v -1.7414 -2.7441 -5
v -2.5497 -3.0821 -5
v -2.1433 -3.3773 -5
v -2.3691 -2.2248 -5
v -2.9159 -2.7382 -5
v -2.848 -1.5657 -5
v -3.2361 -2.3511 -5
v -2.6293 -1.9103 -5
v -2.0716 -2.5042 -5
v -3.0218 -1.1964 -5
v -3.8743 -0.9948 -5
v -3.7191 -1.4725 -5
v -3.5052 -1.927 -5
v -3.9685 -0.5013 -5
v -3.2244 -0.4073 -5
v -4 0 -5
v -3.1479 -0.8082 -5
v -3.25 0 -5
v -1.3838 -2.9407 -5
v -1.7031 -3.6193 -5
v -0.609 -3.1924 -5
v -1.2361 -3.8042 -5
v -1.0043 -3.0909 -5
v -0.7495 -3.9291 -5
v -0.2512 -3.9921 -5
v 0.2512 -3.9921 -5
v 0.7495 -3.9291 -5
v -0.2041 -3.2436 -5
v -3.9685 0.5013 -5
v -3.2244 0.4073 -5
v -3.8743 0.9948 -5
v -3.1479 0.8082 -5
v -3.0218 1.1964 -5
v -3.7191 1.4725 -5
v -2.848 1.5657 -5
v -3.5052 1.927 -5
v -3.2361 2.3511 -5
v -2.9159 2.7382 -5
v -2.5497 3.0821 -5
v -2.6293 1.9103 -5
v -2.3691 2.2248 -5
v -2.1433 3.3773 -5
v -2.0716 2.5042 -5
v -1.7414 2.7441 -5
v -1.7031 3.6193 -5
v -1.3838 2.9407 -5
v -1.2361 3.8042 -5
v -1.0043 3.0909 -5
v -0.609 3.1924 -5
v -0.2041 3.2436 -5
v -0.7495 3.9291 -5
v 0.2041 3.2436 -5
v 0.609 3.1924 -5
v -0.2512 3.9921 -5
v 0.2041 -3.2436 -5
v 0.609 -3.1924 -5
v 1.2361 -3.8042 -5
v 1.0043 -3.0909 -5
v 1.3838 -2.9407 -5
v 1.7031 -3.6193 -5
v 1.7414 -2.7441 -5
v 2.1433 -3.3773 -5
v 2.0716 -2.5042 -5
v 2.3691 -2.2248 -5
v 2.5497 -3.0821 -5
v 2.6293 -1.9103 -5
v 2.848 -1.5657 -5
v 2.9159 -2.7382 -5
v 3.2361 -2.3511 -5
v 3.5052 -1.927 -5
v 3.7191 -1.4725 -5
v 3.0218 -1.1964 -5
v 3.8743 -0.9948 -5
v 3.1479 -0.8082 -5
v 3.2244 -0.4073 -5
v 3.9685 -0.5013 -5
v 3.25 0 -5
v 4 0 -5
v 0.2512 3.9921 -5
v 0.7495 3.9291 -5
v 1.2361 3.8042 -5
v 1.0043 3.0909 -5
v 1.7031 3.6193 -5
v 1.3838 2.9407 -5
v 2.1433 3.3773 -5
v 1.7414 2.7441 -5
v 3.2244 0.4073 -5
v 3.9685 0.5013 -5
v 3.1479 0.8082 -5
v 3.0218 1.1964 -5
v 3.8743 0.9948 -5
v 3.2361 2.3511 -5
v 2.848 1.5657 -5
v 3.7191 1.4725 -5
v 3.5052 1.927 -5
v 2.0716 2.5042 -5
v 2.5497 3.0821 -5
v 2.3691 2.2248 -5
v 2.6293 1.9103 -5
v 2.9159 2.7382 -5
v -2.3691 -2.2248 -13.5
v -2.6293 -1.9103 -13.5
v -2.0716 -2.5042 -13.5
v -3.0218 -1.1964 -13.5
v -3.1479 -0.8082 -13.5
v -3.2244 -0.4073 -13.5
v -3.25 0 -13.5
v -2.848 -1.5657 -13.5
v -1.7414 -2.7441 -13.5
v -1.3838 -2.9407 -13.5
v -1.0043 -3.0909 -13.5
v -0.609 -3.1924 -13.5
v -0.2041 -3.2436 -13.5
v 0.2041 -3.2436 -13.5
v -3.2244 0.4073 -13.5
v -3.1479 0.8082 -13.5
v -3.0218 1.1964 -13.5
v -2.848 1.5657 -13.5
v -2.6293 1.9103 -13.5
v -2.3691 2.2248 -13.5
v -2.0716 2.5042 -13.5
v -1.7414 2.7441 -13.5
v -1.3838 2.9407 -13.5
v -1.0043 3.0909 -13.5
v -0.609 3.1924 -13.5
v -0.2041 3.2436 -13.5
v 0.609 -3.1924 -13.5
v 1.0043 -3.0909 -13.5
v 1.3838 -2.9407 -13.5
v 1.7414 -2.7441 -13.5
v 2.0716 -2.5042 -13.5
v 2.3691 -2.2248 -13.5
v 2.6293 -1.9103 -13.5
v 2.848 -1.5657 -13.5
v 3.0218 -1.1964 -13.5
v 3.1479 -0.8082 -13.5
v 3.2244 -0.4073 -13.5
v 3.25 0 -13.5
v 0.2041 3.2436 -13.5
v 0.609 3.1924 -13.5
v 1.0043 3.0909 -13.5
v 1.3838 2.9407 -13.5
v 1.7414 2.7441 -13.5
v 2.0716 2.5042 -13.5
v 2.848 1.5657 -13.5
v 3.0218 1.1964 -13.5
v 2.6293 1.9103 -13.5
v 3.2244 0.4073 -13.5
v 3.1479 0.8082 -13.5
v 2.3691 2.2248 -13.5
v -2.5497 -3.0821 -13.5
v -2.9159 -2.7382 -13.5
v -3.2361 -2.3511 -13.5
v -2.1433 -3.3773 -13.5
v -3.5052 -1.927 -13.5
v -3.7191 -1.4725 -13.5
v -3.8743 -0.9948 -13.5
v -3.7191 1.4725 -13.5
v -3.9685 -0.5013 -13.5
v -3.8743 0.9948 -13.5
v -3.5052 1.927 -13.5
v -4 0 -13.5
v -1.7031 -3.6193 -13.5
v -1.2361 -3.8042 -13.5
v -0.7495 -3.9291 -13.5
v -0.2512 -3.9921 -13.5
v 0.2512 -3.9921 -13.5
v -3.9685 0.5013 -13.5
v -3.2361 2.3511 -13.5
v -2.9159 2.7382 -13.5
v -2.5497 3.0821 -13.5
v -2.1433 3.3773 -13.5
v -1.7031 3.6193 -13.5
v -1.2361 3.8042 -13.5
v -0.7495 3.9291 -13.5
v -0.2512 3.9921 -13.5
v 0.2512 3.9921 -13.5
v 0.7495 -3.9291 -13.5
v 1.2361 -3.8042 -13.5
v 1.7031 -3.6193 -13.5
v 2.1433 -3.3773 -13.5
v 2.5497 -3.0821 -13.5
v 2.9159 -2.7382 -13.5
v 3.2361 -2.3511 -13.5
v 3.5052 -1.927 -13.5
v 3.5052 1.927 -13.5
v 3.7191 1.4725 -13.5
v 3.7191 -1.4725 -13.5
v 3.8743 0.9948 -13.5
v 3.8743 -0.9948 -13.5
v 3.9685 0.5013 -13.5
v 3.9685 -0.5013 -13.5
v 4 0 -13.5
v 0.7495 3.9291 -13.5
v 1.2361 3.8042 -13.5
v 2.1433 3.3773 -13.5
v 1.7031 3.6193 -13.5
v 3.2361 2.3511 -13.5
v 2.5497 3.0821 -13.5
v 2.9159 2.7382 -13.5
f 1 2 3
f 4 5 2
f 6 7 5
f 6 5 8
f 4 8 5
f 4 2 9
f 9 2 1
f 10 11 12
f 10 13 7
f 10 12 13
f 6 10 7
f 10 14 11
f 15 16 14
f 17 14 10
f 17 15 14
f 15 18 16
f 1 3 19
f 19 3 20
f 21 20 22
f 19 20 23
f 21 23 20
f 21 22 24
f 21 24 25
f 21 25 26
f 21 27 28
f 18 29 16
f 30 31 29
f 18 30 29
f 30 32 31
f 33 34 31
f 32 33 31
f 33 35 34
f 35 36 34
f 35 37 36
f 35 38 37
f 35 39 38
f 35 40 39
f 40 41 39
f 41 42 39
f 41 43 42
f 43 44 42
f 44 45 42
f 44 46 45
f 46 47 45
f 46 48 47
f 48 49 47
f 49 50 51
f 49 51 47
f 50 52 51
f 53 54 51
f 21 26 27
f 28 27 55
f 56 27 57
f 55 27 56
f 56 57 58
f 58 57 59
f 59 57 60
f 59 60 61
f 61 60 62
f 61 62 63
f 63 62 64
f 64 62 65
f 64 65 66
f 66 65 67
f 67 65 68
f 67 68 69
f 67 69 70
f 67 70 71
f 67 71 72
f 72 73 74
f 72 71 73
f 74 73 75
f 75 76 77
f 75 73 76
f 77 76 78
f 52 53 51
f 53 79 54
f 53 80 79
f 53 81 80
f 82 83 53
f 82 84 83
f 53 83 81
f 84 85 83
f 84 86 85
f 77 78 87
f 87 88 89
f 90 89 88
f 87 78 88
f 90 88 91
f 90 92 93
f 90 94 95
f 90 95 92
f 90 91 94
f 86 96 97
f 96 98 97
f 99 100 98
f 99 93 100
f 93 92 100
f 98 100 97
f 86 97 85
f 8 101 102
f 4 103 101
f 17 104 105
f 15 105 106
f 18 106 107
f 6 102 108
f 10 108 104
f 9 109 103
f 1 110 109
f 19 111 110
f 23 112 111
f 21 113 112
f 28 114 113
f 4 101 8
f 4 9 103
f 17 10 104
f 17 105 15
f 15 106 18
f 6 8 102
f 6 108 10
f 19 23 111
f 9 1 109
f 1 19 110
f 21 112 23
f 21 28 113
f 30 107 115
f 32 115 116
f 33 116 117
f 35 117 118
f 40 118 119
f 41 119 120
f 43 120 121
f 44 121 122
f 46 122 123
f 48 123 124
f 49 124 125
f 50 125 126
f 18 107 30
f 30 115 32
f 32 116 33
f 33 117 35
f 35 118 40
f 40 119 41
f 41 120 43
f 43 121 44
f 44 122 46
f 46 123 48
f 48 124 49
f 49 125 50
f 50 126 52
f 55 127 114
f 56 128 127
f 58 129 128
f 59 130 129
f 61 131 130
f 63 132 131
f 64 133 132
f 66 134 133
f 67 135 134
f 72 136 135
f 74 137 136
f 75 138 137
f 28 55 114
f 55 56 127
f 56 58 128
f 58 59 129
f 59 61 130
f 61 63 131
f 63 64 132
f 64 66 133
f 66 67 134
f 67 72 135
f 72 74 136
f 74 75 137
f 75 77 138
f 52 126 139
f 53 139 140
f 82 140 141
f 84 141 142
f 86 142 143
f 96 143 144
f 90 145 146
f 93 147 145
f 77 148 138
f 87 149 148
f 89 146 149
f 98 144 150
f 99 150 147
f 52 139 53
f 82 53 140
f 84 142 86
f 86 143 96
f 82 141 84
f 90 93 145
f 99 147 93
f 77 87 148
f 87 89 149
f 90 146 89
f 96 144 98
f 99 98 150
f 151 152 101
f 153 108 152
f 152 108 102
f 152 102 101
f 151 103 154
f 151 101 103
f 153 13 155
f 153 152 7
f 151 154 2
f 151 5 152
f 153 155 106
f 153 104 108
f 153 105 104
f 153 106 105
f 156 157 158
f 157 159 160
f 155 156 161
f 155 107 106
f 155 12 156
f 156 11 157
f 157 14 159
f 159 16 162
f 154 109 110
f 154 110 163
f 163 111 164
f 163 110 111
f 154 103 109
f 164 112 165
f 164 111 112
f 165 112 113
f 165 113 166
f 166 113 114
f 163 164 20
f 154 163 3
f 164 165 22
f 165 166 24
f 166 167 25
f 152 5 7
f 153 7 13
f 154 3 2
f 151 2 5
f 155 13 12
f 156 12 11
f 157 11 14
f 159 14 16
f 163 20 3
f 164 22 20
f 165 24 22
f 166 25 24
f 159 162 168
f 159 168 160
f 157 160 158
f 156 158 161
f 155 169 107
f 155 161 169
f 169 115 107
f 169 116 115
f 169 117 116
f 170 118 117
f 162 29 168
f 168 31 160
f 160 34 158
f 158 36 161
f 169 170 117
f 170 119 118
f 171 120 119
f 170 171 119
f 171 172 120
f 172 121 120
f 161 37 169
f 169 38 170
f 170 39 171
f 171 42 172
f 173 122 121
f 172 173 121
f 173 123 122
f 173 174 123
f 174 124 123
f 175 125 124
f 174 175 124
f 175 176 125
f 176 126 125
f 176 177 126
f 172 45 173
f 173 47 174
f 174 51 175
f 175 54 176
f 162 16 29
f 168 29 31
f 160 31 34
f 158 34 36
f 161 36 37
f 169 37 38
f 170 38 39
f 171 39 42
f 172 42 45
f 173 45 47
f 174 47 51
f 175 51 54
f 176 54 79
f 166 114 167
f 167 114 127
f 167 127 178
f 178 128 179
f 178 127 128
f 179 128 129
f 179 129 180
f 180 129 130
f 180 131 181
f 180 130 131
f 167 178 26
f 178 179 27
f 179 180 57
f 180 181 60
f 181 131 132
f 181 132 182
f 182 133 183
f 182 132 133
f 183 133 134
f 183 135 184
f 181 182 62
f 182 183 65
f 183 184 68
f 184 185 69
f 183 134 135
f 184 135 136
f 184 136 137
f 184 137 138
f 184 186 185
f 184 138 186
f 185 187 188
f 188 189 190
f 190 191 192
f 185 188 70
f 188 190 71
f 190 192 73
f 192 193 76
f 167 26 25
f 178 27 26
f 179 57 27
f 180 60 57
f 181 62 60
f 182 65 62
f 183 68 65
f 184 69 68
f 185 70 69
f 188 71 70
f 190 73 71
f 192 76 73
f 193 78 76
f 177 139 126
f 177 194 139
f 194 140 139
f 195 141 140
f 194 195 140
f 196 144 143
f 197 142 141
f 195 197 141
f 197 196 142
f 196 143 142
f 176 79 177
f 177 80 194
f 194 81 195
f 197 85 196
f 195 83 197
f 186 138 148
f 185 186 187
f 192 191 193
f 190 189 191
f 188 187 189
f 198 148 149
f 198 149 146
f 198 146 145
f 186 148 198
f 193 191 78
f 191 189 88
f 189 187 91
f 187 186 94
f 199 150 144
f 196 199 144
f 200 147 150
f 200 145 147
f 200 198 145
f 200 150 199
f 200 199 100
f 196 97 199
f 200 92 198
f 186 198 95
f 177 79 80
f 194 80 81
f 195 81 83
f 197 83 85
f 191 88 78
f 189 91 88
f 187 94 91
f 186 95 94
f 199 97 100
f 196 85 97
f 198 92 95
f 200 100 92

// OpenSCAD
$fn = 50;

difference() {
	union() {
		translate(v = [0, 0, -13.5]) {
			cylinder(h = 16.5, r = 4.0);
		}
	}
	union() {
		translate(v = [0, 0, 0]) {
			rotate(a = [0, 0, 0]) {
				difference() {
					union() {
						translate(v = [0, 0, -5]) {
							linear_extrude(height = 5) {
								polygon(points = [[5.914249999999999, 0.0], [2.957125, 5.1218907443321156], [-2.9571249999999982, 5.1218907443321156], [-5.914249999999999, 7.242867331857232e-16], [-2.9571250000000022, -5.121890744332115], [2.9571249999999956, -5.121890744332118]]);
							}
						}
					}
					union();
				}
			}
		}
		#cylinder(h = 3, r = 6.25);
		#translate(v = [0, 0, -100.0]) {
			cylinder(h = 200, r = 3.25);
		}
	}
}
